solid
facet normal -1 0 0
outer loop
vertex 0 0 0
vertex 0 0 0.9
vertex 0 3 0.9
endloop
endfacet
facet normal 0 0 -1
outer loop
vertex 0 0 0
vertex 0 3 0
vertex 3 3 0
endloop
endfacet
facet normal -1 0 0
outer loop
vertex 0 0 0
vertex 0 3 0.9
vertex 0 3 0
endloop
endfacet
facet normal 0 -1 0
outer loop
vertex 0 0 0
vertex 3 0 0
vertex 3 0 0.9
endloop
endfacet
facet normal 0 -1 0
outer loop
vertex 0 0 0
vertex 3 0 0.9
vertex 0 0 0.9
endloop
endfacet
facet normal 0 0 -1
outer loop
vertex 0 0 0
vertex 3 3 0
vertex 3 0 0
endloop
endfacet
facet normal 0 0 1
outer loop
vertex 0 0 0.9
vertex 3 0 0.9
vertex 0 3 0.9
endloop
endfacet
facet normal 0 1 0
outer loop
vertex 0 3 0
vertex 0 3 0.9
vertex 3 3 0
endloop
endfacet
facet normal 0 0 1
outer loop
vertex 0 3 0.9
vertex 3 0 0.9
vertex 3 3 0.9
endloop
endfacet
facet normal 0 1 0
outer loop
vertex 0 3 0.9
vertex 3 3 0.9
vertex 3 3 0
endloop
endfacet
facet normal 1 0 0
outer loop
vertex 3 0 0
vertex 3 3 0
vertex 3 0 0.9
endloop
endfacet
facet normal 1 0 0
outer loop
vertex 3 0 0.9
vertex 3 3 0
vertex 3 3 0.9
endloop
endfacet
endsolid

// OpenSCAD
/* Warning, this is a very basic generator with a lot of approximation 
input data : [VQFN, REB, 3x3x0.9mm, 20, , A, C04-21380A]
generated by com.zoubworld.electronics.cad.model3d.Basic
Date : Sun Feb 15 10:50:49 CET 2026
*/

//body
color("black")
translate([0,0,0])
cube([3.0,3.0,0.9], center=false);
